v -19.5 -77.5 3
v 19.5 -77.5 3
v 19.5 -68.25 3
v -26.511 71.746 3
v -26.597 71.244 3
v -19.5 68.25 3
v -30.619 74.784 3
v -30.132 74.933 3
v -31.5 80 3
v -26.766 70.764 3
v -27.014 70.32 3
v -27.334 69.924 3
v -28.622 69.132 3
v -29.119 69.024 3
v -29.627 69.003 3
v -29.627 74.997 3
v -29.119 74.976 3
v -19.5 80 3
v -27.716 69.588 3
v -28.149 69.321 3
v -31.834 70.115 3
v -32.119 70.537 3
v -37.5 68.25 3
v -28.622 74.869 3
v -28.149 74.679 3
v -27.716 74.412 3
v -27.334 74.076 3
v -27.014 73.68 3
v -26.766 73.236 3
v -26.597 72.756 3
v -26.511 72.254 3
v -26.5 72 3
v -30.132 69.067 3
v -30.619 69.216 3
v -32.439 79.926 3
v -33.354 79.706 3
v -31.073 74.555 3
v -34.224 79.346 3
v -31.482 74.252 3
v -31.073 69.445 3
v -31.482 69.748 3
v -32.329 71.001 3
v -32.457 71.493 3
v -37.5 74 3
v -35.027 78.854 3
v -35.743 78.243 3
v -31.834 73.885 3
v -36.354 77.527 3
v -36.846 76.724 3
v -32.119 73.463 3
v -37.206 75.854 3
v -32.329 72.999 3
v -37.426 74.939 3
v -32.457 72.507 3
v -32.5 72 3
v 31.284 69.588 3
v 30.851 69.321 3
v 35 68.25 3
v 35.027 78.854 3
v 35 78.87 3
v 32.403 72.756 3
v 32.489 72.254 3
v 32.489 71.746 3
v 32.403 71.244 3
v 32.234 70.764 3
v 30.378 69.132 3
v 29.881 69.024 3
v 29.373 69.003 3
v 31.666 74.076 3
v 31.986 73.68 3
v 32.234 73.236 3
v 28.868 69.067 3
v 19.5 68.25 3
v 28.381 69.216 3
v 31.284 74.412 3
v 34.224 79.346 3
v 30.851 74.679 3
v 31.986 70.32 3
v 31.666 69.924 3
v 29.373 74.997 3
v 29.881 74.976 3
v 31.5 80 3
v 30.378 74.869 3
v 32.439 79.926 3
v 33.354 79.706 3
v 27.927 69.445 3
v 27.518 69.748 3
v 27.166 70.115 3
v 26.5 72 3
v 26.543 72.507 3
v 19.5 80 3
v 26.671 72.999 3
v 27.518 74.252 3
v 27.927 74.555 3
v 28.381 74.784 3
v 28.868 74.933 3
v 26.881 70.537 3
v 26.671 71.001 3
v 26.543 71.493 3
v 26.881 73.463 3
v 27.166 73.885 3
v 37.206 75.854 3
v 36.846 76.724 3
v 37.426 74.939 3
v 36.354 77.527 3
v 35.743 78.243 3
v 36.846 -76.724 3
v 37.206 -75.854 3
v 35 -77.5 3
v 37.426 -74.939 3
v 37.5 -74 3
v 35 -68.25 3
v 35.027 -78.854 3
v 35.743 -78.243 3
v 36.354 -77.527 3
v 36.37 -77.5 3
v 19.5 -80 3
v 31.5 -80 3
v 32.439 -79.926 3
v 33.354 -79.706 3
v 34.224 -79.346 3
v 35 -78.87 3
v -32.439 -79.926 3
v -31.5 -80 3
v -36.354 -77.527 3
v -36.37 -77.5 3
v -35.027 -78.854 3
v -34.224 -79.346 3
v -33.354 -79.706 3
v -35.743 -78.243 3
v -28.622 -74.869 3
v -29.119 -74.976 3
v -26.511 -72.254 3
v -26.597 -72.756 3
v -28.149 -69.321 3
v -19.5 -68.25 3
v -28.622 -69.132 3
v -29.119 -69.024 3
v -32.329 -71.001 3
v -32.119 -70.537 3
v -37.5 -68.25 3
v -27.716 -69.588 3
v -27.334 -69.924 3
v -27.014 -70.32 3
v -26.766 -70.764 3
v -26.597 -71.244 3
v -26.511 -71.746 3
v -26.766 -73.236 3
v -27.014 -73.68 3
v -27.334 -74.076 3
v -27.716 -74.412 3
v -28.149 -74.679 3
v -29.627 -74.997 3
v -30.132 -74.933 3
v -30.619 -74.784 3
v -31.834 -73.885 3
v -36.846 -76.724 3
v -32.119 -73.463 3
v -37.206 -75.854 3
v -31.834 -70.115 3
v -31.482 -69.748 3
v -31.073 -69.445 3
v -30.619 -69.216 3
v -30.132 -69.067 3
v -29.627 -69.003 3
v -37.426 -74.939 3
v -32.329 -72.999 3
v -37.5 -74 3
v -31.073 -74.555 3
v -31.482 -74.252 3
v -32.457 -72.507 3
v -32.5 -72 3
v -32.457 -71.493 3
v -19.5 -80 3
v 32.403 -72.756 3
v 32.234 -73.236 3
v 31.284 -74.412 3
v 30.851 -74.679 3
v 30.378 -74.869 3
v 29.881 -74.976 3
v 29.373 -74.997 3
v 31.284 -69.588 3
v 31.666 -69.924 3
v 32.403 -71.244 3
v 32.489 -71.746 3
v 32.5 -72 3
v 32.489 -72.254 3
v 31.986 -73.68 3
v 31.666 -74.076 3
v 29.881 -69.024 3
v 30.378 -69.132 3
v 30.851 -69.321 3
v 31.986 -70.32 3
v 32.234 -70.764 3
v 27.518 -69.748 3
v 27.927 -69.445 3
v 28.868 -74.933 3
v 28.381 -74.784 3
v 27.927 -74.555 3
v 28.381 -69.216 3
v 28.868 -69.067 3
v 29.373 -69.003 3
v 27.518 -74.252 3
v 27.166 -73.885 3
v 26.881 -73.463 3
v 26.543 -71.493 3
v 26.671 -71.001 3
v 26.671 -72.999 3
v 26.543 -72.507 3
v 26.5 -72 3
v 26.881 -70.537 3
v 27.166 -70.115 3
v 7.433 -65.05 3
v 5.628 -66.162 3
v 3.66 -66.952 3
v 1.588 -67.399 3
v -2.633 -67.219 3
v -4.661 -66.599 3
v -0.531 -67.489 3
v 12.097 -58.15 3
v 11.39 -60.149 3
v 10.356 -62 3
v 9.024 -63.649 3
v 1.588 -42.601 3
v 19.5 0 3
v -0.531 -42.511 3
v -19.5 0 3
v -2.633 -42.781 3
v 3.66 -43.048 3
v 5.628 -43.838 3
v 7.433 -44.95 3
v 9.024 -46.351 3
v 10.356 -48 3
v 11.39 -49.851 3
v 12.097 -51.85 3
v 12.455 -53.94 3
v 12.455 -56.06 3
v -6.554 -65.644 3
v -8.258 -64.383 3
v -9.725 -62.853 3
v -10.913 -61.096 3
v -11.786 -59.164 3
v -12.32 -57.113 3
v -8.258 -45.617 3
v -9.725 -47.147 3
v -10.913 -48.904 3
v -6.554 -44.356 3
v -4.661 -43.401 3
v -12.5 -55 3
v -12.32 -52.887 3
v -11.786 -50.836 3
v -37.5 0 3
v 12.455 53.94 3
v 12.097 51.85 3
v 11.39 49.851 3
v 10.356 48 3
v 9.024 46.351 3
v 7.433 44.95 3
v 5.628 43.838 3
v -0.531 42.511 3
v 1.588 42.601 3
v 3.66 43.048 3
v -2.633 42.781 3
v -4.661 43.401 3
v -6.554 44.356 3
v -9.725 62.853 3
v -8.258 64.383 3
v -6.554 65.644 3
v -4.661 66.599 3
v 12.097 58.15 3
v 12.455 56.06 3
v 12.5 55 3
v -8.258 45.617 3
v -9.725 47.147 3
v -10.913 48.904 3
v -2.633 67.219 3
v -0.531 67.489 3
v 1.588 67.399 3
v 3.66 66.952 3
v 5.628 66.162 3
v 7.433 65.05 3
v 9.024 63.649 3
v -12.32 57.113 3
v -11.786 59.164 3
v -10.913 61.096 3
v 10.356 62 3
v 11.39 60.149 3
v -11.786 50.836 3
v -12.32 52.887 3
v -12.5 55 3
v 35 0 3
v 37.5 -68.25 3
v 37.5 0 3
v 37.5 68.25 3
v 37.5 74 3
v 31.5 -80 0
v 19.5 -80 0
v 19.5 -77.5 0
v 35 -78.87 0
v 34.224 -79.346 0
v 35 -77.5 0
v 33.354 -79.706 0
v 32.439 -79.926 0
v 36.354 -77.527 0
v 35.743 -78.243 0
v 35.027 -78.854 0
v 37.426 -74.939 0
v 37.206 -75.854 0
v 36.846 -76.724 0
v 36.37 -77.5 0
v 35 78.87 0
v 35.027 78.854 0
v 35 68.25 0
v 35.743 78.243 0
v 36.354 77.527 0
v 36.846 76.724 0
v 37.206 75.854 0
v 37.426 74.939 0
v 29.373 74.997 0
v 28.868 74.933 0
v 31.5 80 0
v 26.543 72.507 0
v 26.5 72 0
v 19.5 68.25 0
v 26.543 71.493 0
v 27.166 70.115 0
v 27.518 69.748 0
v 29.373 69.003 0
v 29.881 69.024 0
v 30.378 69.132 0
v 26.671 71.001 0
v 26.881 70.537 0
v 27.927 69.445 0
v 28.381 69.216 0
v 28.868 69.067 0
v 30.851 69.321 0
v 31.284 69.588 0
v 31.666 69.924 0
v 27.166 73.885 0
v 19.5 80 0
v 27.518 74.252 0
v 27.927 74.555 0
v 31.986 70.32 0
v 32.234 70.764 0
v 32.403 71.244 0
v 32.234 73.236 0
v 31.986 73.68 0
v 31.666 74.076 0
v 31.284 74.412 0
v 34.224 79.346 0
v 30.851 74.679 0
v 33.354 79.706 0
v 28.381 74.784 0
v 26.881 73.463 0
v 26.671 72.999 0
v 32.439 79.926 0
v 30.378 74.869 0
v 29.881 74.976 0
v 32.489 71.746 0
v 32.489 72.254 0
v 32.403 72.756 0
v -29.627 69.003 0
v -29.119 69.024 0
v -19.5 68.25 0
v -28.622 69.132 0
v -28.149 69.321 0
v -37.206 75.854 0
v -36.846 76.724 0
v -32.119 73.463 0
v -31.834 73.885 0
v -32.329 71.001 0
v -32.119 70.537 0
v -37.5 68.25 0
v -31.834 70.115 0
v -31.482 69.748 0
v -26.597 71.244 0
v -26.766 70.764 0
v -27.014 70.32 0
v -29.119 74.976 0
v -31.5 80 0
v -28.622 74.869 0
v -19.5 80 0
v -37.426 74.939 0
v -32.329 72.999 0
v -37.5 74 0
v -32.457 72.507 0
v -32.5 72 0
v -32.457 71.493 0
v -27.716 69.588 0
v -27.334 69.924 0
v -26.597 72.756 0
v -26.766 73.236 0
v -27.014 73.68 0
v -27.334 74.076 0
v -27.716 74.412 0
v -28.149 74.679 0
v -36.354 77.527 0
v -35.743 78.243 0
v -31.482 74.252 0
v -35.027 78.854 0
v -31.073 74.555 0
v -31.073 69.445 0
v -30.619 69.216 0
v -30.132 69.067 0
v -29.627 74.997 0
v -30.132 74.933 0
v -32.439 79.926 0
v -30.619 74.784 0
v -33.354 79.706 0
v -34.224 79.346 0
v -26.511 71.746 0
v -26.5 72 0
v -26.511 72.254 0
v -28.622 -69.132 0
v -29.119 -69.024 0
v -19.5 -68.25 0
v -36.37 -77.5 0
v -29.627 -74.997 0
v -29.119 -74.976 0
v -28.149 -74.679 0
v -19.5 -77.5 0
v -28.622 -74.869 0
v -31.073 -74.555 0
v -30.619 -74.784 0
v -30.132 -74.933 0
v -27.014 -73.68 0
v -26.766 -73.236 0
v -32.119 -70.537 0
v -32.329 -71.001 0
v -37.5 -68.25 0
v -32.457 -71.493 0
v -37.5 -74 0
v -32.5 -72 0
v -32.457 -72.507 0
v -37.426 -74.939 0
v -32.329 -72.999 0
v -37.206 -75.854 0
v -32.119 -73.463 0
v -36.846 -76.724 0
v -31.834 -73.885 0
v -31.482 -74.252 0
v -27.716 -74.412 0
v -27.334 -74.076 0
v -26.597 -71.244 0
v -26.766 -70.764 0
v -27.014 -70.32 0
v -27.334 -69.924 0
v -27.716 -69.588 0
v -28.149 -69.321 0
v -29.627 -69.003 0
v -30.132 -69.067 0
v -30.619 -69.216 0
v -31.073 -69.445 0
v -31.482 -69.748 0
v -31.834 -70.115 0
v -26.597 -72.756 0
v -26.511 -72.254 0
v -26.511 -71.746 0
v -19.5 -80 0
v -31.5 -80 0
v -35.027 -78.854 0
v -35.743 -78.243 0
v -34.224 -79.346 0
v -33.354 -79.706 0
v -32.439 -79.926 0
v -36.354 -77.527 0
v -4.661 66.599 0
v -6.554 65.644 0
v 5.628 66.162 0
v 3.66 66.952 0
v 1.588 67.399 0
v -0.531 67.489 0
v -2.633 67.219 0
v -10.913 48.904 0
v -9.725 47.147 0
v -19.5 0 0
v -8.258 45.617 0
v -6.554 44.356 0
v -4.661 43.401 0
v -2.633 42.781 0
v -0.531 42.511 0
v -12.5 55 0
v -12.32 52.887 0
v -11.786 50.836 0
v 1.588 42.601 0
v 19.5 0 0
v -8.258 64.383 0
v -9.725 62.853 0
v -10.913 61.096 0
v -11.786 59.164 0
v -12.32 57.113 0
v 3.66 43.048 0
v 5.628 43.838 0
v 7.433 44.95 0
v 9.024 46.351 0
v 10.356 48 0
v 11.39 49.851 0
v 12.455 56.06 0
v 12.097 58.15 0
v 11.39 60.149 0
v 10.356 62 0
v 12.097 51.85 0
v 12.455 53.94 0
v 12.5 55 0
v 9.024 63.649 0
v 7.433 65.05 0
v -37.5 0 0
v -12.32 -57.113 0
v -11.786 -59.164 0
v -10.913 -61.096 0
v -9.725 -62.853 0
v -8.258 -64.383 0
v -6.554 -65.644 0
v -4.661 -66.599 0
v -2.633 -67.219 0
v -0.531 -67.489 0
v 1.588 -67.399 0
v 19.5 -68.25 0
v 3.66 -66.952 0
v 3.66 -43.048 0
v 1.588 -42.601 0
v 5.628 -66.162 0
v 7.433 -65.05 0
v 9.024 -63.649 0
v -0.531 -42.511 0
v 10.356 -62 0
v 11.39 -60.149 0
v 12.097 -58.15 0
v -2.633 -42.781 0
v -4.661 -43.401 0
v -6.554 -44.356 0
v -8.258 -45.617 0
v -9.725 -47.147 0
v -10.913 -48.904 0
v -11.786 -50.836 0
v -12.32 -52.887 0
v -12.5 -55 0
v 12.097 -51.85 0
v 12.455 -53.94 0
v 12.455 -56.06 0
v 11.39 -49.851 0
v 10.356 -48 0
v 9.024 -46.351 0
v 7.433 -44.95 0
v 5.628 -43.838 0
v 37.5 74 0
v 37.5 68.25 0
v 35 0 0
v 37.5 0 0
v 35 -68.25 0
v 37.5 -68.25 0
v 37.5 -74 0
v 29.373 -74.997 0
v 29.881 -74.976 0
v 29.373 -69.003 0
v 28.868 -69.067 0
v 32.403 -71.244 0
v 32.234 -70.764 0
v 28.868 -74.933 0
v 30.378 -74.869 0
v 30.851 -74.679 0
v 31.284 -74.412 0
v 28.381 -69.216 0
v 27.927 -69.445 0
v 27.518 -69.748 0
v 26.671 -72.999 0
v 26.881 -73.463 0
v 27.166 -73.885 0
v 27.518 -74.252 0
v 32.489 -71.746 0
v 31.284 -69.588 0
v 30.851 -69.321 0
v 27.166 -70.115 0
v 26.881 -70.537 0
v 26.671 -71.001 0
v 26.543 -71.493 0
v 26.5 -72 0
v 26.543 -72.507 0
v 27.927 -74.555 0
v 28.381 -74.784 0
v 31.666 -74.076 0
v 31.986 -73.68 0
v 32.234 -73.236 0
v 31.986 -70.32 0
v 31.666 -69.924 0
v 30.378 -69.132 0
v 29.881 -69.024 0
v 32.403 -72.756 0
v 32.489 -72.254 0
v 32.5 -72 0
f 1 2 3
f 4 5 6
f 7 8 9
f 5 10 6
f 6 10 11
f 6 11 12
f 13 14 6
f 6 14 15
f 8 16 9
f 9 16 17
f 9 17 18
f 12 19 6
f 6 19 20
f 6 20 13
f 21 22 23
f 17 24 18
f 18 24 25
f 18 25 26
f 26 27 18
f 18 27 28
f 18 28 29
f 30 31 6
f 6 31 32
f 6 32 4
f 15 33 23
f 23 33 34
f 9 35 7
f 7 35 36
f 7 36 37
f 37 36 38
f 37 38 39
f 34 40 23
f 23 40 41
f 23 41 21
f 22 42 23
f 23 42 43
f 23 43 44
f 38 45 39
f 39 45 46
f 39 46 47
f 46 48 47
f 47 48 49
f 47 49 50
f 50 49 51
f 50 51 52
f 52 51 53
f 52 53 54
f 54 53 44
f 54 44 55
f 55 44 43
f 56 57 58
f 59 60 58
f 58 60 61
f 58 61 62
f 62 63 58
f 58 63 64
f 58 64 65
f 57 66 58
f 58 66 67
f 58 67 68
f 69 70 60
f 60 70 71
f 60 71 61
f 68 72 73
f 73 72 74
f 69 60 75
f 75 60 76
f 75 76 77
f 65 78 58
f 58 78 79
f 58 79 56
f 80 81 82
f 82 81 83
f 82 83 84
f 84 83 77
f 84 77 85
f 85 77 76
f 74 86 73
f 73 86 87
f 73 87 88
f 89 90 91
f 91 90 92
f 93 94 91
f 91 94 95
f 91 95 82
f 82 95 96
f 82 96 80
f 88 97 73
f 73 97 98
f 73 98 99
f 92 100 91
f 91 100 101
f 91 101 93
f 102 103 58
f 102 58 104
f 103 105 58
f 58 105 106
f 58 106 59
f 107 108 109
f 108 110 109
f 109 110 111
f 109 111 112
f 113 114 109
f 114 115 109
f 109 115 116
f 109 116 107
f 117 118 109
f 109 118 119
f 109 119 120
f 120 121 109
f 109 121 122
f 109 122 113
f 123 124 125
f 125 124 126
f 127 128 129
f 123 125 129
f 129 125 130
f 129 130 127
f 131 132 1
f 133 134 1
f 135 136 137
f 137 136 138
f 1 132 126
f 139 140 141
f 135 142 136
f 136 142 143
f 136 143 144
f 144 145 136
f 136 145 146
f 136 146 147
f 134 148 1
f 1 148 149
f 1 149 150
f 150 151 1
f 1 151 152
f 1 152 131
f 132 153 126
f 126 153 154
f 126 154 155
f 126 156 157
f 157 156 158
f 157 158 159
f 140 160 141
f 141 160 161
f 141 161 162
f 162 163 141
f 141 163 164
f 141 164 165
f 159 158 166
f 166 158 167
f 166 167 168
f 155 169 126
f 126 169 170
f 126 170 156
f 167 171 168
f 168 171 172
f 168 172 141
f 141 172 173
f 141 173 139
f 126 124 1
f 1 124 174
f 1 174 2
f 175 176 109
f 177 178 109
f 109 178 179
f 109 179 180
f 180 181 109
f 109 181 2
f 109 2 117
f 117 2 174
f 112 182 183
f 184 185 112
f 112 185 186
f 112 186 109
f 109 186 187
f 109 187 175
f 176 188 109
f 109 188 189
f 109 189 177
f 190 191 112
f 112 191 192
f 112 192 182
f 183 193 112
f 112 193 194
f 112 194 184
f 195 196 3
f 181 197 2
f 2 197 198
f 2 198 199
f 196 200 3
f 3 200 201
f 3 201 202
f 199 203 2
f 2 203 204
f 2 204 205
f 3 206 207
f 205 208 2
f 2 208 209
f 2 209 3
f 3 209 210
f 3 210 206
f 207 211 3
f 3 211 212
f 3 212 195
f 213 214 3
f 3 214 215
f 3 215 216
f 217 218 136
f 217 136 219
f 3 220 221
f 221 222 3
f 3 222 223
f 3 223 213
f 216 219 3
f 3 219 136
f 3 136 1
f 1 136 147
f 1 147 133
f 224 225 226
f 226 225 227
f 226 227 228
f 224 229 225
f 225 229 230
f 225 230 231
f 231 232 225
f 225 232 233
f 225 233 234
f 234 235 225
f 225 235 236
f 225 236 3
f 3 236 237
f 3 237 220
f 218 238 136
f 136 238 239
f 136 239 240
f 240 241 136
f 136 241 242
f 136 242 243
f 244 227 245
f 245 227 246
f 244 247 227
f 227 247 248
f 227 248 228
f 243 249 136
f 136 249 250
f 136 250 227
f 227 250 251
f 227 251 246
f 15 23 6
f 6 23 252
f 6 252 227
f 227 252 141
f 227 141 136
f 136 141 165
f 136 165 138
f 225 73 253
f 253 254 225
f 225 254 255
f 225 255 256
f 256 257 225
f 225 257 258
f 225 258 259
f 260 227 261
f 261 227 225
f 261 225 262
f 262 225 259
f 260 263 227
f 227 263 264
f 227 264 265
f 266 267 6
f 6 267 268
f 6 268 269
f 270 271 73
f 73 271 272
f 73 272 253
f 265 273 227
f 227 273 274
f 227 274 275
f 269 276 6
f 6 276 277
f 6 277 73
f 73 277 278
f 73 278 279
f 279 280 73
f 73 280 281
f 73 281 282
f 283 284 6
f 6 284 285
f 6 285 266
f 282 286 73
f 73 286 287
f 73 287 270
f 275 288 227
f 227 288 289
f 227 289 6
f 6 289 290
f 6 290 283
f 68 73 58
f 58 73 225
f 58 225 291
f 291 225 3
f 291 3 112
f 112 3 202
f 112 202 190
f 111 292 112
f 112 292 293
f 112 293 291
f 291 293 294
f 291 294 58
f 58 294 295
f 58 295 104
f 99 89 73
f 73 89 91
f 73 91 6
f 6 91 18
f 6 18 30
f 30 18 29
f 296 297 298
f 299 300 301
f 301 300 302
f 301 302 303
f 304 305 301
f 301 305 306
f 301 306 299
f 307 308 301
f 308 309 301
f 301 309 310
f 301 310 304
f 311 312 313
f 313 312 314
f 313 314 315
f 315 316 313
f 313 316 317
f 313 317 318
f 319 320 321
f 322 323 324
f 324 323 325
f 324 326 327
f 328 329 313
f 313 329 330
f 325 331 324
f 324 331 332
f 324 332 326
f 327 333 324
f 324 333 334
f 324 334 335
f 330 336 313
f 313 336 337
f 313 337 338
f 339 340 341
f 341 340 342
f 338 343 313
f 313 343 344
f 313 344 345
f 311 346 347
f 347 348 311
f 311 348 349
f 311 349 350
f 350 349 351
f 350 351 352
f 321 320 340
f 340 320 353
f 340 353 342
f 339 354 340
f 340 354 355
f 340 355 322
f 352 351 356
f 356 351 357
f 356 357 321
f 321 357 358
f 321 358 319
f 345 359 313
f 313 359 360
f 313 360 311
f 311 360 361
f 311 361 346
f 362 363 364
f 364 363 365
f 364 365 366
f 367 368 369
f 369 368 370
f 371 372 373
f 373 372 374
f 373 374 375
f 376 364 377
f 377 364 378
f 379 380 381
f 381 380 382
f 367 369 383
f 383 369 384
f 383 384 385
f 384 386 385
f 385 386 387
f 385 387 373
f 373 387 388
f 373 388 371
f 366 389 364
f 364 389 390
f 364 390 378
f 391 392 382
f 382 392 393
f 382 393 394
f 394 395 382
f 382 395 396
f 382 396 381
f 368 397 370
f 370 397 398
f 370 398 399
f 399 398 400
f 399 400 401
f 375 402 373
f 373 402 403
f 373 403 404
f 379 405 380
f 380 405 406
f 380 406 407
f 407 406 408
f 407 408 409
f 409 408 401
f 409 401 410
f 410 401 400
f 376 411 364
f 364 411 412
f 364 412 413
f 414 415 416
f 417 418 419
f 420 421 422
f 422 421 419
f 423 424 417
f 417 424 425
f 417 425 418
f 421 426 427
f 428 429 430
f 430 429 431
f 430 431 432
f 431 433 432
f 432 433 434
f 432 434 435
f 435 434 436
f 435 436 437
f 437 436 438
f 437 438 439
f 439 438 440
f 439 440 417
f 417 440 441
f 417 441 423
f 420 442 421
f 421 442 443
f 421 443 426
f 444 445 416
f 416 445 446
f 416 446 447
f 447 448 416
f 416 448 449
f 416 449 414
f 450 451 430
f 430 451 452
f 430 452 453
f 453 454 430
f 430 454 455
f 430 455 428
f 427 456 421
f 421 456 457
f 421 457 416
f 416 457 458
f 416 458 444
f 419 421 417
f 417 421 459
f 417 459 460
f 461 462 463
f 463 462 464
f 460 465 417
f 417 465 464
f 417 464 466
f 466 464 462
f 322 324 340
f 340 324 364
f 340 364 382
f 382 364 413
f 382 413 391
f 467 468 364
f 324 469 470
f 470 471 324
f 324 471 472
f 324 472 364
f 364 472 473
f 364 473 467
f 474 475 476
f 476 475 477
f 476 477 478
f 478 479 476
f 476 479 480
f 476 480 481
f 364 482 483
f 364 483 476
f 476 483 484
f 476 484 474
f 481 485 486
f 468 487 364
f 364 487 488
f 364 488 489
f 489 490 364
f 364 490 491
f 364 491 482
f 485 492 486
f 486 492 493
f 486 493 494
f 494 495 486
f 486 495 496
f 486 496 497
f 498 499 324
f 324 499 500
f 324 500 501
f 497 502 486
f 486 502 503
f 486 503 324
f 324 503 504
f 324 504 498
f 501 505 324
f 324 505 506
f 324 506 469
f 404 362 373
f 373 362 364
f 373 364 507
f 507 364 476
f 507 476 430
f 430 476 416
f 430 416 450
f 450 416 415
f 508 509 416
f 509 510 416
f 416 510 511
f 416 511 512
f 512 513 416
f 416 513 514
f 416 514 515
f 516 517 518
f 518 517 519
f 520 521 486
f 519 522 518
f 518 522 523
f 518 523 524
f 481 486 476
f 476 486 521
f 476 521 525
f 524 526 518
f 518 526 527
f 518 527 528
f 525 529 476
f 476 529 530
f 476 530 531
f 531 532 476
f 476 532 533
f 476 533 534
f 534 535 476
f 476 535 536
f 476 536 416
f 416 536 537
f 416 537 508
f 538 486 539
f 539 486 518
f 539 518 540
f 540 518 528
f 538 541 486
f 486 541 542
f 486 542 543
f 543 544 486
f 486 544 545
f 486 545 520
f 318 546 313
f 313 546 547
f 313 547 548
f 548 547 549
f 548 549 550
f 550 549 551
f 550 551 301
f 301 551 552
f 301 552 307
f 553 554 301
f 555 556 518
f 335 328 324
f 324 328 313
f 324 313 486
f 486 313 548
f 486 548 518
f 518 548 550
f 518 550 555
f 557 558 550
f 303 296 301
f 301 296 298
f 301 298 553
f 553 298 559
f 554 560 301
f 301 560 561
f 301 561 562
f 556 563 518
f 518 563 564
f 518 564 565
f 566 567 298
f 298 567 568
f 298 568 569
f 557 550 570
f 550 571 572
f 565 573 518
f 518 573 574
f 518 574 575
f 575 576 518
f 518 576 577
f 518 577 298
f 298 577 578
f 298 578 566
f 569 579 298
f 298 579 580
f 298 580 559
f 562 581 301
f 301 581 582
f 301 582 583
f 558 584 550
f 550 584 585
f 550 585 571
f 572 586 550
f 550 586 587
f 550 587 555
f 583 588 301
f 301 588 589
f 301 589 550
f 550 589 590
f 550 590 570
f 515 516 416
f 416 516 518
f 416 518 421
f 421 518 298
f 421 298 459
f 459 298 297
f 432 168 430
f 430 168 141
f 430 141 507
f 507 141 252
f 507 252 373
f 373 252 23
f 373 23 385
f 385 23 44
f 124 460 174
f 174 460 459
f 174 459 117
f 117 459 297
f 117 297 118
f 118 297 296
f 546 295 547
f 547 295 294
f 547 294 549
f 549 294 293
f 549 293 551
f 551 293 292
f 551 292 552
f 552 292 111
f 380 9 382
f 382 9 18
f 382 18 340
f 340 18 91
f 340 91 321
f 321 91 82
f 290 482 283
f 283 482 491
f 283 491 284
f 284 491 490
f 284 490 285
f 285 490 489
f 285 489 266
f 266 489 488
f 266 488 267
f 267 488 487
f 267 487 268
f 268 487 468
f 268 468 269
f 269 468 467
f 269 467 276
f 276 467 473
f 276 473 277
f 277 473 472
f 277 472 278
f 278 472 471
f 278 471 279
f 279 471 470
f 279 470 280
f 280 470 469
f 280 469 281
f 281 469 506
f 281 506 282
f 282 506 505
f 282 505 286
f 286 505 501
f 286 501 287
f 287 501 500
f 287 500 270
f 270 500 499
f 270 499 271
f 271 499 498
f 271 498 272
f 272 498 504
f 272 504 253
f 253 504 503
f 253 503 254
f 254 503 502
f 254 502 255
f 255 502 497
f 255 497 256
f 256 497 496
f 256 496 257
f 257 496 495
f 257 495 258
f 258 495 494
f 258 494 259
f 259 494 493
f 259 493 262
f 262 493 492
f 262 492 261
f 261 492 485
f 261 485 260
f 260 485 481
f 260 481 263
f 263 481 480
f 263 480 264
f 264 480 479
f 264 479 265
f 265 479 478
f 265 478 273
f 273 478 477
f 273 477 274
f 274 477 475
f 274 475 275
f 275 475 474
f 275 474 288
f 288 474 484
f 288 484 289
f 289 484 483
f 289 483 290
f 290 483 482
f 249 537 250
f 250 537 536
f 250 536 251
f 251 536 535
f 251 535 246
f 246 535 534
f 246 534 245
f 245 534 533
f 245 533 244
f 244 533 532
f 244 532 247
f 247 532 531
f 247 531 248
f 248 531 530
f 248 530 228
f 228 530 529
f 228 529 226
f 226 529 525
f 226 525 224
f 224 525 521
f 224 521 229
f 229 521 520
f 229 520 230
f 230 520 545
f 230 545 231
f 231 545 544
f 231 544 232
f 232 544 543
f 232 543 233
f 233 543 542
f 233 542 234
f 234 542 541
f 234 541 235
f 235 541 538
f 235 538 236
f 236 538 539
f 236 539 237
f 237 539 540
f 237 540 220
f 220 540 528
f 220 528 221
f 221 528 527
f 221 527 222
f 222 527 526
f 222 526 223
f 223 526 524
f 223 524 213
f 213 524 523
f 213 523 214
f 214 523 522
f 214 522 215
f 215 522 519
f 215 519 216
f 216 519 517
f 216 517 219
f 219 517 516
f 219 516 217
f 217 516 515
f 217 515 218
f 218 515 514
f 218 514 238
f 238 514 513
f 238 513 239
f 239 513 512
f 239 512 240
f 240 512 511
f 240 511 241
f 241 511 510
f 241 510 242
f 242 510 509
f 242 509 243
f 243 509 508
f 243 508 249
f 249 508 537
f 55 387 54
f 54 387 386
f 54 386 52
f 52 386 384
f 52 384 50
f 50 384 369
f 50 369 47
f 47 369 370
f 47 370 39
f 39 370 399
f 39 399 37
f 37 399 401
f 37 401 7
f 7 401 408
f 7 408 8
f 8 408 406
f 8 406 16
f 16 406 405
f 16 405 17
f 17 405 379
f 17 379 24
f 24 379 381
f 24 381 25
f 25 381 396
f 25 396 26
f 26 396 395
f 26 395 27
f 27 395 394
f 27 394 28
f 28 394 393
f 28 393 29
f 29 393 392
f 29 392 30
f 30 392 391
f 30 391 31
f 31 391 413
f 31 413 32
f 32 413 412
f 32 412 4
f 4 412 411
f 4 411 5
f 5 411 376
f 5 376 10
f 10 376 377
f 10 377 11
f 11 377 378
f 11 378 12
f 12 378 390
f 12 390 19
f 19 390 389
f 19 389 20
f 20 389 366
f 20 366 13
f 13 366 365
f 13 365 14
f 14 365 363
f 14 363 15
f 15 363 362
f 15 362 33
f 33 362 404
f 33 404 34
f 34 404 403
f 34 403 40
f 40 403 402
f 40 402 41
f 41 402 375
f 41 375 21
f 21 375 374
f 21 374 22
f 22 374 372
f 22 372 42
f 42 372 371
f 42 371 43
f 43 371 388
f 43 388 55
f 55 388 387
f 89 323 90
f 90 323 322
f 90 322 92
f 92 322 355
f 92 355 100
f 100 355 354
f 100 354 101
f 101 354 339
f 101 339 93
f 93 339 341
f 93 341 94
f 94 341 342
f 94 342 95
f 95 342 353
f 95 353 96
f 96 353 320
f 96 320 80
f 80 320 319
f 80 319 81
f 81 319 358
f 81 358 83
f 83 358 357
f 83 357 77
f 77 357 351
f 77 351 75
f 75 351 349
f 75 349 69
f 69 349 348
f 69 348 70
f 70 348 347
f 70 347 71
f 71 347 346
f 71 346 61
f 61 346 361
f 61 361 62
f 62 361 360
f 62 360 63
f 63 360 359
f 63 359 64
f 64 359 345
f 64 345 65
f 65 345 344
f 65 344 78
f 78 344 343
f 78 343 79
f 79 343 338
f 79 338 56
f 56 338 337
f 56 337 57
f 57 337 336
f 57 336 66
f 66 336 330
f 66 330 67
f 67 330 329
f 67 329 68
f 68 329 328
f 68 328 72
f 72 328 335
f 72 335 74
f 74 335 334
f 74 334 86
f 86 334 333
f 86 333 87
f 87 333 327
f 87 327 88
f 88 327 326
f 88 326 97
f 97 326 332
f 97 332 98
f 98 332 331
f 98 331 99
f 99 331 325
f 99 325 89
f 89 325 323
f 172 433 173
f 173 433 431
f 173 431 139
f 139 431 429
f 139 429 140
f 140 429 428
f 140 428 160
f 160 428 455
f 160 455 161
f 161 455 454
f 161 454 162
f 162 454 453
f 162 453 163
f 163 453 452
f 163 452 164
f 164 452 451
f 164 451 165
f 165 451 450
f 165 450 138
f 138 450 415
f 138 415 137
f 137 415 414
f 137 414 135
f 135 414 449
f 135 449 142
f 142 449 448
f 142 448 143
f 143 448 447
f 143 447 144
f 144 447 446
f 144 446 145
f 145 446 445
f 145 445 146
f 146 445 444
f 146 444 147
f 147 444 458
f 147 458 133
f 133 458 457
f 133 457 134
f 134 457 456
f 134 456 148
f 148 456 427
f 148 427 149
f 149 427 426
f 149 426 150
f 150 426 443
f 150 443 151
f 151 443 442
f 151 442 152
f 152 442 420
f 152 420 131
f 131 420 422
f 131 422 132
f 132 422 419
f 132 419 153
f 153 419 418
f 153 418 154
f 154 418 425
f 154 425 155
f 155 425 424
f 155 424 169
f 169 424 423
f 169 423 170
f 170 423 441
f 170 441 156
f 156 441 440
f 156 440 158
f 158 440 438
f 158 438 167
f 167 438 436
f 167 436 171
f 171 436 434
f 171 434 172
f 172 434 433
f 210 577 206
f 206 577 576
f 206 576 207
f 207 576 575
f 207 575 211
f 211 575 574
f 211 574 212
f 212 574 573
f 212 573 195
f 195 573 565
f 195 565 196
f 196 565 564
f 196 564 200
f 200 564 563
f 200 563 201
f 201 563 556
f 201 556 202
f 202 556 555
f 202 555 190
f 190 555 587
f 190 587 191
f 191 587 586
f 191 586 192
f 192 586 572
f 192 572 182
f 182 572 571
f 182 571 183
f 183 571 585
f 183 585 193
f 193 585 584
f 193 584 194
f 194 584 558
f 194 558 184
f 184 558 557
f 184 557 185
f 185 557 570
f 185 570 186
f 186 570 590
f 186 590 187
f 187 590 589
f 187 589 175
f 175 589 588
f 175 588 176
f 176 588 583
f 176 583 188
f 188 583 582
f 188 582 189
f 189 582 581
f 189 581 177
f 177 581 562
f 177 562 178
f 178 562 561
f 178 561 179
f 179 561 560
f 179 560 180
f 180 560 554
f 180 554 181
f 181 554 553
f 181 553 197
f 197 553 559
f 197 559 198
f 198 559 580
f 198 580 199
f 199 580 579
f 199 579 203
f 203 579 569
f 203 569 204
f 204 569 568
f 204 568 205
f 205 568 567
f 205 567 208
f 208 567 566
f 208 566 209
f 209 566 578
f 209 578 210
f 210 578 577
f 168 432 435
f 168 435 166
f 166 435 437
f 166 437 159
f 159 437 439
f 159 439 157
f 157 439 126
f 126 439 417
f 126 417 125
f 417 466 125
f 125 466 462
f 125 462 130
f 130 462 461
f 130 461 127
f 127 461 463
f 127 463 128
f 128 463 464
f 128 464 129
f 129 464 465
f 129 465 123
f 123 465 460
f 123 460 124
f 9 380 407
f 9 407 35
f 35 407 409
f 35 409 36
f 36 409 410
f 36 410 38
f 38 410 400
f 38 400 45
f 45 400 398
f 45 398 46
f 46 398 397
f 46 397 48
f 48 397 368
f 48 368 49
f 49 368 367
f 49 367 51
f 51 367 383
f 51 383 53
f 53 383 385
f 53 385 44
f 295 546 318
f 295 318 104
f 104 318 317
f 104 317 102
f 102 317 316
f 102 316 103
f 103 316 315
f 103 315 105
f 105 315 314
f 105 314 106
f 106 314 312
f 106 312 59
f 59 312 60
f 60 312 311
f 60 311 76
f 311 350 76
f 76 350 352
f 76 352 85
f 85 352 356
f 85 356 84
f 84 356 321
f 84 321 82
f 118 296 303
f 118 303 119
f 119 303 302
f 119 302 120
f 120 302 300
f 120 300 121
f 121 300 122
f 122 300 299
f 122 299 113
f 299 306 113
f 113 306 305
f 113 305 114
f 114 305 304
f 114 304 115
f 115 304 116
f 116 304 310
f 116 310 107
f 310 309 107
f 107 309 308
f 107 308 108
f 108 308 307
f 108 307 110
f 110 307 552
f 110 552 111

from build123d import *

# Parameters (mm, degrees)
CROQUIS1_W              = 75
CROQUIS1_H              = 160
CROQUIS1_R              = 12.5
CROQUIS1_R_2            = 3
SALIENTE_EXTRUIR1_DEPTH = 3
REDONDEO1_R             = 6


with BuildPart() as part:
    # Croquis1 → Saliente-Extruir1 (new body)
    with BuildSketch(Plane.XY):
        Rectangle(CROQUIS1_W, CROQUIS1_H)
        with Locations((0, 55)):
            Circle(CROQUIS1_R, mode=Mode.SUBTRACT)
        with Locations((0, -55)):
            Circle(CROQUIS1_R, mode=Mode.SUBTRACT)
        with Locations((-29.5, 72)):
            Circle(CROQUIS1_R_2, mode=Mode.SUBTRACT)
        with Locations((29.5, 72)):
            Circle(CROQUIS1_R_2, mode=Mode.SUBTRACT)
        with Locations((-29.5, -72)):
            Circle(CROQUIS1_R_2, mode=Mode.SUBTRACT)
        with Locations((29.5, -72)):
            Circle(CROQUIS1_R_2, mode=Mode.SUBTRACT)
    extrude(amount=SALIENTE_EXTRUIR1_DEPTH)

    # Redondeo1
    redondeo1_edges = [part.edges().sort_by_distance(p)[0] for p in [
        (-37.5, 80, 1.5),
        (37.5, 80, 1.5),
        (37.5, -80, 1.5),
        (-37.5, -80, 1.5),
    ]]
    fillet(redondeo1_edges, radius=REDONDEO1_R)


solid = part.part
